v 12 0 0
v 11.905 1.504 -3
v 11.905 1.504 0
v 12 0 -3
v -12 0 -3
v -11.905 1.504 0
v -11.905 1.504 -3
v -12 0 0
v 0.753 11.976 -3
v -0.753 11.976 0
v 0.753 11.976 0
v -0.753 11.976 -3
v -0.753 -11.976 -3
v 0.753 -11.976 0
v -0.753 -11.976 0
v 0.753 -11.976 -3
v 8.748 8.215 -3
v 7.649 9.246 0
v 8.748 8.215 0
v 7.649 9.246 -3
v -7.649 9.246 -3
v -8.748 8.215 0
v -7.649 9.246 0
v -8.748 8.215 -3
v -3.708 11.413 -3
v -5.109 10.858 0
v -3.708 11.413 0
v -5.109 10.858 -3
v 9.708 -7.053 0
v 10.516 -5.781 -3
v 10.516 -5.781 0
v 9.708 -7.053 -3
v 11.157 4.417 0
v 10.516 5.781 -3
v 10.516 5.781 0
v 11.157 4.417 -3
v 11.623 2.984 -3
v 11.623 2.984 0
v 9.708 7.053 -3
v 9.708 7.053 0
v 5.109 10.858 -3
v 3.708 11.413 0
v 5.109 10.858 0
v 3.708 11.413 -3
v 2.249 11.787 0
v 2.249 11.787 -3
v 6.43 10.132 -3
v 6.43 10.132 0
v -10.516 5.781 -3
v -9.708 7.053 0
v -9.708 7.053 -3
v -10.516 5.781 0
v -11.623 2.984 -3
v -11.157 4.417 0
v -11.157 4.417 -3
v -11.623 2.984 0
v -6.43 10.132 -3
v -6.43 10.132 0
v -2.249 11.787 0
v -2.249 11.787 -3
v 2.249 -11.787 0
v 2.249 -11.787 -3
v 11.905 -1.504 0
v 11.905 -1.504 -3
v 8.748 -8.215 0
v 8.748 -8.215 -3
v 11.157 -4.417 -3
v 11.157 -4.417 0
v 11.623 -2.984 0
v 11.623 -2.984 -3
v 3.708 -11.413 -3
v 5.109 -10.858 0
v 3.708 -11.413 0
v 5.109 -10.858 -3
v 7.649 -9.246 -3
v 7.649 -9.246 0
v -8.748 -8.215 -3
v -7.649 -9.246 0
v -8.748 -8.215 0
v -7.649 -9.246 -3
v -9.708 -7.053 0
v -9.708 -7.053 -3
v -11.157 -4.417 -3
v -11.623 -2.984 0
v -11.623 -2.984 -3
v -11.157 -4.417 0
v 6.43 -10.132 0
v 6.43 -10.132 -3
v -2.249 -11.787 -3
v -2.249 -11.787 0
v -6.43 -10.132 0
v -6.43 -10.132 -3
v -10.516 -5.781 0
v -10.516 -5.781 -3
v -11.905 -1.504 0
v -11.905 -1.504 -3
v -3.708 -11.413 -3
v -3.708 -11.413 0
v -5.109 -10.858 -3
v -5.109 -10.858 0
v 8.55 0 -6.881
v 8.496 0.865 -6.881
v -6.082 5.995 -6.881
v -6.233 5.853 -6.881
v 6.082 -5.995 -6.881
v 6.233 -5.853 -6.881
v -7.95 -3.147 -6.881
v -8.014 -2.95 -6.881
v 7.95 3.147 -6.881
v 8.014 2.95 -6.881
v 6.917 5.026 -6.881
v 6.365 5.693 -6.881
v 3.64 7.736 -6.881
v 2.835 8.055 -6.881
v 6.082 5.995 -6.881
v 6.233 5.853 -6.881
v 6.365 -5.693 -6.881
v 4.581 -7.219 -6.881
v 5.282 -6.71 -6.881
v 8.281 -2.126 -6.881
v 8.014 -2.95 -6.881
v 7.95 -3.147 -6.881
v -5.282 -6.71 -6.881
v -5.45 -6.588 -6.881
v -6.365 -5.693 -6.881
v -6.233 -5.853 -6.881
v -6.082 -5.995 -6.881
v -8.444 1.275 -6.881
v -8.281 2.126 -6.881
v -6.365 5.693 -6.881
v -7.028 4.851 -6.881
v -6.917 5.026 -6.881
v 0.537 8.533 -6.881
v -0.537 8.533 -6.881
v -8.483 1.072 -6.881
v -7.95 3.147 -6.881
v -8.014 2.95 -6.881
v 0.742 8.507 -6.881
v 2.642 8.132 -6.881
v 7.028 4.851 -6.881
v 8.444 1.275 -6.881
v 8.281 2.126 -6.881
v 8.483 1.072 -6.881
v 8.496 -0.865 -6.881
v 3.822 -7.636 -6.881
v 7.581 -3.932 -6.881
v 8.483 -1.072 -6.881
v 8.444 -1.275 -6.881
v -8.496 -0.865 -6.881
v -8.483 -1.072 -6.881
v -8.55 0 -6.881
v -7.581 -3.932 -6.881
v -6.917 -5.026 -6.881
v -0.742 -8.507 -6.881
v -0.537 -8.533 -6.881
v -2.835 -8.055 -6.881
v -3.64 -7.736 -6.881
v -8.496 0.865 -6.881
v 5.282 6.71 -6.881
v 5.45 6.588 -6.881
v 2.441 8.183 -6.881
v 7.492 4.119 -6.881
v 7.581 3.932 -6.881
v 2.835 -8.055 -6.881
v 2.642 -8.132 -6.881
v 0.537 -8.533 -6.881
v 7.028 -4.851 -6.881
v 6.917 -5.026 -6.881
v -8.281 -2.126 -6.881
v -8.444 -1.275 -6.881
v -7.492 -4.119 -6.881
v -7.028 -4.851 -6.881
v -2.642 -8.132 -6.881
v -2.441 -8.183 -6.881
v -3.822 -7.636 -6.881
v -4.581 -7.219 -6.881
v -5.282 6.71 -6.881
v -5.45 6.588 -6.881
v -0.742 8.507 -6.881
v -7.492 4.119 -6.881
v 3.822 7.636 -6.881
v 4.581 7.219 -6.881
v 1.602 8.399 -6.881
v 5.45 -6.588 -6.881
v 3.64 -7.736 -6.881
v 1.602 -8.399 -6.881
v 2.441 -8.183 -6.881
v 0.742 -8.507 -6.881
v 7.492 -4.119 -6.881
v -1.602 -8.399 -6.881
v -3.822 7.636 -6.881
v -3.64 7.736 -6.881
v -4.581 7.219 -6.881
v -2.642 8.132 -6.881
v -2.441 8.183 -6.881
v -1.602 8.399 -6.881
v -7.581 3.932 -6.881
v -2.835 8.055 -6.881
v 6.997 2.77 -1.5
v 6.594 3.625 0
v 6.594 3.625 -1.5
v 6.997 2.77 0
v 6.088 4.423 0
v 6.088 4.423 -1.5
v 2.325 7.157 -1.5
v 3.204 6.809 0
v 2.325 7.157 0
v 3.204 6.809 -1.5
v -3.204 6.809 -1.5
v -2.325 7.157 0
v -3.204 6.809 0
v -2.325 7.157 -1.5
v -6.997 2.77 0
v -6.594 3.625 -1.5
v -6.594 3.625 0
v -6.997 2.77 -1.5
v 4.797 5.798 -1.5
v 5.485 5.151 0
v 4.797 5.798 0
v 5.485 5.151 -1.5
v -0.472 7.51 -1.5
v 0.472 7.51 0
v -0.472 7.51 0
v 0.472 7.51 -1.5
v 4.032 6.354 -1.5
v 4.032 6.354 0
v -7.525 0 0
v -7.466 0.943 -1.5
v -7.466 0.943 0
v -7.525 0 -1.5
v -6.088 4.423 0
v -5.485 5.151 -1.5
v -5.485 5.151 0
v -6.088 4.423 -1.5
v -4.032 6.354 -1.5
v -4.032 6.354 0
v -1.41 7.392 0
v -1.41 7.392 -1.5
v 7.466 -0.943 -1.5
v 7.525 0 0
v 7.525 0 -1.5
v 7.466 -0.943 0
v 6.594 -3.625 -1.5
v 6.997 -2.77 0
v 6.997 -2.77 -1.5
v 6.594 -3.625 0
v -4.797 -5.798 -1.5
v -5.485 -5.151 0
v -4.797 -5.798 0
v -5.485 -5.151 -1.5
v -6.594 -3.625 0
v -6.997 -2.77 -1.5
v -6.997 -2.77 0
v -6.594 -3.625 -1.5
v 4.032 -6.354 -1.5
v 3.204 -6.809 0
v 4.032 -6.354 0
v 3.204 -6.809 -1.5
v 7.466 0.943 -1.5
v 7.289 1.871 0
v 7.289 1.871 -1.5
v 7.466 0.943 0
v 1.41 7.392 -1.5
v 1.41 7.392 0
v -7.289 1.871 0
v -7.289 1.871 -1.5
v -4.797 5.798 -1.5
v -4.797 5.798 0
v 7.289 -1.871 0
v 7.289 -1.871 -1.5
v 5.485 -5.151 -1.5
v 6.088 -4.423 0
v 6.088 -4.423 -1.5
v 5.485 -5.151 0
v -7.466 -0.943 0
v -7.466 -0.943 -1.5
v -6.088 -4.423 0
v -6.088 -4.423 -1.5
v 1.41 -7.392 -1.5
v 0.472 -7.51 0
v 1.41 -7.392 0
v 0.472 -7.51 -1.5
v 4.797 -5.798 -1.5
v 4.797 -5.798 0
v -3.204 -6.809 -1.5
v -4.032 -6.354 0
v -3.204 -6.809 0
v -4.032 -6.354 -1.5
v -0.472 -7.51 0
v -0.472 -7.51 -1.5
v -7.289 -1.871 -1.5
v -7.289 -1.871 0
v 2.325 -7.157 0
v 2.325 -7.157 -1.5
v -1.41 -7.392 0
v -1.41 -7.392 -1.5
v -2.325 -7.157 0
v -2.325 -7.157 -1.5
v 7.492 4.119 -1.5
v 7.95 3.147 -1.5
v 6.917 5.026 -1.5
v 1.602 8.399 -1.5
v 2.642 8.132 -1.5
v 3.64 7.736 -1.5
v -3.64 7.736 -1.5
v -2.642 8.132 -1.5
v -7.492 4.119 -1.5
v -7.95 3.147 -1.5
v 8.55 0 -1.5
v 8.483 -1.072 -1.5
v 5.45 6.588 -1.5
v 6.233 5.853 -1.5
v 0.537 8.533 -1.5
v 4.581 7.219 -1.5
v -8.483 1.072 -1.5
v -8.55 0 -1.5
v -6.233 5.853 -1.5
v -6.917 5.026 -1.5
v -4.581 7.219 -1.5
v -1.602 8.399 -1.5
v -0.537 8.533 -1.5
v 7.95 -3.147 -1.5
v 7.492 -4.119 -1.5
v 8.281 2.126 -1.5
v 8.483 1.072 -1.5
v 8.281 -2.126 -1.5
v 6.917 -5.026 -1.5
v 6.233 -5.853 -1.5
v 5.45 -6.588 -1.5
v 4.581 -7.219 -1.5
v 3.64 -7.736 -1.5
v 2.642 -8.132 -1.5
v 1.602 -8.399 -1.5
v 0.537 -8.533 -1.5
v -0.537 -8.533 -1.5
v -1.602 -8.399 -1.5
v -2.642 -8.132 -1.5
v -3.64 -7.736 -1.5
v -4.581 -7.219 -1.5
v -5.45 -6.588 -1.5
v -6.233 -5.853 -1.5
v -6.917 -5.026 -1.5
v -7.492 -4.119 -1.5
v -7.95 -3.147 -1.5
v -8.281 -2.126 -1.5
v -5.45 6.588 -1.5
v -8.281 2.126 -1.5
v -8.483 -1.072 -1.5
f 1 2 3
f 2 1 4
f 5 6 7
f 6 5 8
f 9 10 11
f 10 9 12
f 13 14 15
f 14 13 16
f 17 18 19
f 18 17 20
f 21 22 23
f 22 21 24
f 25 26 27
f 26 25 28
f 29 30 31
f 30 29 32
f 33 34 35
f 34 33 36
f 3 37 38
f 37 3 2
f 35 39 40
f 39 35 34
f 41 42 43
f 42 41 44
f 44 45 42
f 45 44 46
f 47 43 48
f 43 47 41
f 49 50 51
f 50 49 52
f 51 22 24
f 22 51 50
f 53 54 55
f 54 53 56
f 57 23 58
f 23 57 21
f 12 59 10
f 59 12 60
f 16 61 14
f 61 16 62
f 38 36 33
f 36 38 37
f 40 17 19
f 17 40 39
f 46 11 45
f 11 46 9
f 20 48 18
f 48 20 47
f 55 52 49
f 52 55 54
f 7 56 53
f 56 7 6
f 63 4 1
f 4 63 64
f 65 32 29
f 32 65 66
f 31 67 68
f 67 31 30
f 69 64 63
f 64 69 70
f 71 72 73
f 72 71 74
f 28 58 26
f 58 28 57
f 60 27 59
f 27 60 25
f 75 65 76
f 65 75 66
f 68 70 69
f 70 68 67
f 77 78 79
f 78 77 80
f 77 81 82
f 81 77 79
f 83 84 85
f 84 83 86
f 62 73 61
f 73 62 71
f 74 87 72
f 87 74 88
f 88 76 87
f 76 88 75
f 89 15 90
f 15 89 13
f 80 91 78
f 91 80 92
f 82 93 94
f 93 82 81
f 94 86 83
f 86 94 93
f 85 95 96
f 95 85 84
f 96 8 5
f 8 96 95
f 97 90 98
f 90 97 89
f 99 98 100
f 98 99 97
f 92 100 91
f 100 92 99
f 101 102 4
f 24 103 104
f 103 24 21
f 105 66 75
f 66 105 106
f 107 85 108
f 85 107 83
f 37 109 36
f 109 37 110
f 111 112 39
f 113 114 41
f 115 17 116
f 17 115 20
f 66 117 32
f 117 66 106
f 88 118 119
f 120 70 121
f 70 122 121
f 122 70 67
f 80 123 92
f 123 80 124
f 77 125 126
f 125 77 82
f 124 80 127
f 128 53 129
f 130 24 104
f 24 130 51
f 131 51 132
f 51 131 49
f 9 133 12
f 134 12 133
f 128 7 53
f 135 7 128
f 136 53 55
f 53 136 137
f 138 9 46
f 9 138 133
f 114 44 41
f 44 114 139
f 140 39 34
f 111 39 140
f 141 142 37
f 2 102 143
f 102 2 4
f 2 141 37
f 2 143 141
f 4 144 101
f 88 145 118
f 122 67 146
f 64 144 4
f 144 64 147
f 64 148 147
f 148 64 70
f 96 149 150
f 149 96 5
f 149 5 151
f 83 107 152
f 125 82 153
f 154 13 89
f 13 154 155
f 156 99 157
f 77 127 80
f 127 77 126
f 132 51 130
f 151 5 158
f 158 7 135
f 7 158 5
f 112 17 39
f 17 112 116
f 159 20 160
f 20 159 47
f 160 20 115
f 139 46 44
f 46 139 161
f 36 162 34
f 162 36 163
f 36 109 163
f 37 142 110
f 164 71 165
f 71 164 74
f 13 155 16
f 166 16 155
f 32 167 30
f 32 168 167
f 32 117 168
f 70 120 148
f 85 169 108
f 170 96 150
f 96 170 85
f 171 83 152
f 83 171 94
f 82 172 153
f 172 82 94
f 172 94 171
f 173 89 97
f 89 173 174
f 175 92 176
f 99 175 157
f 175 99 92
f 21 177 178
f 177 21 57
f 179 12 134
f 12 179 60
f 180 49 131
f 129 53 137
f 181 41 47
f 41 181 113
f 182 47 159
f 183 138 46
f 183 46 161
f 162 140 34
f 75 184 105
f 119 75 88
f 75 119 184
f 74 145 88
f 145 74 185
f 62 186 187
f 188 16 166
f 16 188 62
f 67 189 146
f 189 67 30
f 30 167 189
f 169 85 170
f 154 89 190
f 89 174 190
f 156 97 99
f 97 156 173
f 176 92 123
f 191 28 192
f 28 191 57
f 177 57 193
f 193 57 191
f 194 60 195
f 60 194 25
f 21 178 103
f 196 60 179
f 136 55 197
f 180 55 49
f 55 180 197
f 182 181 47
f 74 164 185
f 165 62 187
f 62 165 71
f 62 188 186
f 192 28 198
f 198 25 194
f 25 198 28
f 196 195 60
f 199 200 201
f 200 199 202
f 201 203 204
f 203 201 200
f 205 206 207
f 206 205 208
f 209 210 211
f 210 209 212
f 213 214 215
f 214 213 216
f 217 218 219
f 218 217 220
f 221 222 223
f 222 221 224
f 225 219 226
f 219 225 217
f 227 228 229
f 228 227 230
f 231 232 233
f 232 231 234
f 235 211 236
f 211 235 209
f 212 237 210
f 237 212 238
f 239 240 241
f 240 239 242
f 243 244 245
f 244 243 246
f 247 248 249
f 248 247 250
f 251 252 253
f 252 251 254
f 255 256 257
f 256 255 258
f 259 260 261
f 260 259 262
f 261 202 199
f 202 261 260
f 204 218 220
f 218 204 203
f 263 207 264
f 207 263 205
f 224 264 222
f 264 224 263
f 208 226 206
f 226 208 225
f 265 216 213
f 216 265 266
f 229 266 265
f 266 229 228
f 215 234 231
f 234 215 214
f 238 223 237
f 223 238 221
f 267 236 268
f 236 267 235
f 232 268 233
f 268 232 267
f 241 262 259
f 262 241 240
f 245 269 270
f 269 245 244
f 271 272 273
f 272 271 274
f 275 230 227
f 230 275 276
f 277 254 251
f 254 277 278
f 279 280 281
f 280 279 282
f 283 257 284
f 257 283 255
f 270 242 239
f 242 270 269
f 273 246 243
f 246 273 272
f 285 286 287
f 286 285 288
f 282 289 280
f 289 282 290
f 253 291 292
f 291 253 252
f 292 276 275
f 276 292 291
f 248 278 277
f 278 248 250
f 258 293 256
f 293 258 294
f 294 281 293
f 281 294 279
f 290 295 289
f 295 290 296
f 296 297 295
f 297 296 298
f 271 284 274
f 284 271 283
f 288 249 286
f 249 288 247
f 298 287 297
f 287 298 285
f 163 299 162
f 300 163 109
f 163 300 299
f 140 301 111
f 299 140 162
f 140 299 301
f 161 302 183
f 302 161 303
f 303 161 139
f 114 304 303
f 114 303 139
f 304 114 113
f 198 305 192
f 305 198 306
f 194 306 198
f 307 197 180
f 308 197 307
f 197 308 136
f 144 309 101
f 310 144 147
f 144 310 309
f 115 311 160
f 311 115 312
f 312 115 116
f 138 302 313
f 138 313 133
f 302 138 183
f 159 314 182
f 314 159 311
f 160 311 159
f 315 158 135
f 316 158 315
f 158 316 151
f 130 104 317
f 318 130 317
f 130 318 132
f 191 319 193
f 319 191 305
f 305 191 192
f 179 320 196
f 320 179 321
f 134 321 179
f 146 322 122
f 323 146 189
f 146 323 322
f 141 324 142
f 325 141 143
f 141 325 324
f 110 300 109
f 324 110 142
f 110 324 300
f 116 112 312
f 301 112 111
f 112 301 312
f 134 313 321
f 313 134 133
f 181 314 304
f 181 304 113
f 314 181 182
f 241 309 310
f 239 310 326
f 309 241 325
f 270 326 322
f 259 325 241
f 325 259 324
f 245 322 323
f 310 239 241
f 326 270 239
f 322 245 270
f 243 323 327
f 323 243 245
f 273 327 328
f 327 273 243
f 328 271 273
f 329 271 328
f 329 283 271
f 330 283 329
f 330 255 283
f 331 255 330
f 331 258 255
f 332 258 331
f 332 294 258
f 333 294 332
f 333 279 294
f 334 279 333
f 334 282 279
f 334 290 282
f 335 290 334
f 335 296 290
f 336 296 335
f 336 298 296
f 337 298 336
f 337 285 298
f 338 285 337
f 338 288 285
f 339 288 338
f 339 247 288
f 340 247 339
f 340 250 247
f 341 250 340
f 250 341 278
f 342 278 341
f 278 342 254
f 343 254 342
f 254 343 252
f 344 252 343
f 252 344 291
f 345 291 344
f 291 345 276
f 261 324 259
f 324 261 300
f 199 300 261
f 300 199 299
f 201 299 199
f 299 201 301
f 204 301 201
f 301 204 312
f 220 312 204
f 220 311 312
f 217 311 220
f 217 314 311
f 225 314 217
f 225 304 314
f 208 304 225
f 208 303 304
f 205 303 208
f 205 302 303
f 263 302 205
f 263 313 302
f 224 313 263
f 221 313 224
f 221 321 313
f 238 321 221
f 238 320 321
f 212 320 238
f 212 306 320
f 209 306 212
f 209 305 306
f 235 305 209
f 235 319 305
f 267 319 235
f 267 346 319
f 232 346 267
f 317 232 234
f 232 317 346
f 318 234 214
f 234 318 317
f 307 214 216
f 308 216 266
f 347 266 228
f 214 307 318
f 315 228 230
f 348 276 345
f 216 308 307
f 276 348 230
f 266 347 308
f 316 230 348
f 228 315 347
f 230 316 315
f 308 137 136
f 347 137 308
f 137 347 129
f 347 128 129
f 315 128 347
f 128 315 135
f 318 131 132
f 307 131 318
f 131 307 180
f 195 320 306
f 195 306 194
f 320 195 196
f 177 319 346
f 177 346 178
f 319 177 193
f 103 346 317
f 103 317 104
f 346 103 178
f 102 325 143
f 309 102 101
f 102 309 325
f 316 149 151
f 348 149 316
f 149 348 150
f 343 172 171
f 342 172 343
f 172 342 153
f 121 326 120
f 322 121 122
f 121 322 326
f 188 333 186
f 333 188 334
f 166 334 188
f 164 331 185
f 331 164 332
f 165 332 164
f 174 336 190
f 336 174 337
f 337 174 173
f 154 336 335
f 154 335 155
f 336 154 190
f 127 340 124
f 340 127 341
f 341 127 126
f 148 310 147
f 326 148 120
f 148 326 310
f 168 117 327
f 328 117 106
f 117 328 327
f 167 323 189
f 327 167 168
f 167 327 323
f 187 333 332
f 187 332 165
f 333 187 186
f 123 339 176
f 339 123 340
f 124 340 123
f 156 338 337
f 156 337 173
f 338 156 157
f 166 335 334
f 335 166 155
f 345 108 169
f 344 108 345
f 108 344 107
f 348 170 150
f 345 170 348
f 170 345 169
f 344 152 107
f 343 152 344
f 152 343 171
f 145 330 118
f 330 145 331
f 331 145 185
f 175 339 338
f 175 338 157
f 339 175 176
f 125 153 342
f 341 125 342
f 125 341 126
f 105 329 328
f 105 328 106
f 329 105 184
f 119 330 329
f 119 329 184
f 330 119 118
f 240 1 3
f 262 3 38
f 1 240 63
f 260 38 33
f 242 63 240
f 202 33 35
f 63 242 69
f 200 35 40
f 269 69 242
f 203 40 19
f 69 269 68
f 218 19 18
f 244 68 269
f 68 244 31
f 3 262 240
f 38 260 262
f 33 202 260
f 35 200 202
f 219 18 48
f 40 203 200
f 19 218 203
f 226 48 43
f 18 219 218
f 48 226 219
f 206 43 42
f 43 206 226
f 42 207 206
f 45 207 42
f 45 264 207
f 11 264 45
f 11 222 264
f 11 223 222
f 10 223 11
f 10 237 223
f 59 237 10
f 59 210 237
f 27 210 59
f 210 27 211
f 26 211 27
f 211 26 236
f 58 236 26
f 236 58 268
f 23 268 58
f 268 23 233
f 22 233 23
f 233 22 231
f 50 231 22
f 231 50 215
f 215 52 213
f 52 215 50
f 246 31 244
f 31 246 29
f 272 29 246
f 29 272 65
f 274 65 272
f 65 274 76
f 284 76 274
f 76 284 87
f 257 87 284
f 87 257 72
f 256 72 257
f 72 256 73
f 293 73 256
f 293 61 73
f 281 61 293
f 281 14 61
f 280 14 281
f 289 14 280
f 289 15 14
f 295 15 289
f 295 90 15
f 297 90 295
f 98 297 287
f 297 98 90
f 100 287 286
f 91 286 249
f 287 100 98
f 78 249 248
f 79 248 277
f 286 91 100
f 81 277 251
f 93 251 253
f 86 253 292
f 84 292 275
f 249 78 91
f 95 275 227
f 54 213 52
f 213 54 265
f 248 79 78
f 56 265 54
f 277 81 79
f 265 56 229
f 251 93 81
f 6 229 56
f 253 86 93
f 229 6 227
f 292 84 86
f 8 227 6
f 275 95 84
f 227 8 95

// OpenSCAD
$fn = 50;


difference() {
	union() {
		*color(alpha = 1.0000000000, c = "gray") {
			translate(v = [0, 14, 0]) {
				linear_extrude(height = 1) {
					text(font = "Arial:style=Bold", halign = "center", size = 4.5000000000, text = "COMMENT description oobb_cylinder_shape_positive_type_6_depth_15_thickness_24_diameter_bearing_twenty_twenty_aluminium_extrusion_extra_606_bearing_true_both_holes_0_0_-7.5_pos_plate_12.0_radius", valign = "center");
				}
			}
		}
		translate(v = [0, 0, -3.0000000000]) {
			cylinder(h = 6, r = 12.0000000000);
		}
		*color(alpha = 1.0000000000, c = "gray") {
			translate(v = [0, 14, 5.2500000000]) {
				linear_extrude(height = 1) {
					text(font = "Arial:style=Bold", halign = "center", size = 4.5000000000, text = "COMMENT description oobb_cylinder_shape_positive_type_4.5_depth_0_0_5.25_pos_15_thickness_24_diameter_bearing_twenty_twenty_aluminium_extrusion_extra_606_bearing_true_both_holes_0_0_-7.5_pos_plate_12.0_r1_8.0_r2", valign = "center");
				}
			}
		}
		translate(v = [0, 0, 3.0000000000]) {
			cylinder(h = 4.5000000000, r1 = 12.0000000000, r2 = 8.0000000000);
		}
		*color(alpha = 1.0000000000, c = "gray") {
			translate(v = [0, 14, -5.2500000000]) {
				linear_extrude(height = 1) {
					text(font = "Arial:style=Bold", halign = "center", size = 4.5000000000, text = "COMMENT description oobb_cylinder_shape_positive_type_4.5_depth_0_0_-5.25_pos_15_thickness_24_diameter_bearing_twenty_twenty_aluminium_extrusion_extra_606_bearing_true_both_holes_0_0_-7.5_pos_plate_8.0_r1_12.0_r2", valign = "center");
				}
			}
		}
		translate(v = [0, 0, -7.5000000000]) {
			cylinder(h = 4.5000000000, r1 = 8.0000000000, r2 = 12.0000000000);
		}
	}
	union() {
		*color(alpha = 1.0000000000, c = "gray") {
			translate(v = [0, 14, 0]) {
				linear_extrude(height = 1) {
					text(font = "Arial:style=Bold", halign = "center", size = 4.5000000000, text = "COMMENT description oobb_hole_shape_negative_type_15_thickness_24_diameter_bearing_twenty_twenty_aluminium_extrusion_extra_606_bearing_true_both_holes_0_0_-7.5_pos_plate_5_radius", valign = "center");
				}
			}
		}
		translate(v = [0, 0, -50.0000000000]) {
			cylinder(h = 100, r = 5);
		}
		*color(alpha = 1.0000000000, c = "gray") {
			translate(v = [0, 14, 7.5000000000]) {
				linear_extrude(height = 1) {
					text(font = "Arial:style=Bold", halign = "center", size = 4.5000000000, text = "COMMENT description oobb_bearing_shape_negative_type_0_0_7.5_pos_15_thickness_24_diameter_bearing_twenty_twenty_aluminium_extrusion_extra_606_bearing_true_both_holes_0_0_-7.5_pos_plate_top_zz", valign = "center");
				}
			}
		}
		translate(v = [0, 0, 4.5000000000]) {
			translate(v = [0, 0, -3.0000000000]) {
				union() {
					difference() {
						cylinder(h = 6, r = 8.5500000000);
						cylinder(h = 6, r = 3.0000000000);
					}
					difference() {
						translate(v = [0, 0, -50]) {
							cylinder(h = 100, r = 7.5250000000);
						}
					}
				}
			}
		}
		*color(alpha = 1.0000000000, c = "gray") {
			translate(v = [0, 14, -7.5000000000]) {
				linear_extrude(height = 1) {
					text(font = "Arial:style=Bold", halign = "center", size = 4.5000000000, text = "COMMENT description oobb_bearing_shape_negative_type_0_0_-7.5_pos_15_thickness_24_diameter_bearing_twenty_twenty_aluminium_extrusion_extra_606_bearing_true_both_holes_0_0_-7.5_pos_plate_bottom_zz", valign = "center");
				}
			}
		}
		translate(v = [0, 0, -4.5000000000]) {
			translate(v = [0, 0, -3.0000000000]) {
				union() {
					difference() {
						cylinder(h = 6, r = 8.5500000000);
						cylinder(h = 6, r = 3.0000000000);
					}
					difference() {
						translate(v = [0, 0, -50]) {
							cylinder(h = 100, r = 7.5250000000);
						}
					}
				}
			}
		}
		*color(alpha = 1.0000000000, c = "gray") {
			translate(v = [0, 14, 0]) {
				linear_extrude(height = 1) {
					text(font = "Arial:style=Bold", halign = "center", size = 4.5000000000, text = "COMMENT description oobb_slice_shape_negative_type_15_thickness_24_diameter_bearing_twenty_twenty_aluminium_extrusion_extra_606_bearing_true_both_holes_0_0_-7.5_pos_plate", valign = "center");
				}
			}
		}
		translate(v = [-250, -250, 0]) {
			cube(size = [500, 500, 500]);
		}
		translate(v = [-250, -250, 0]) {
			cube(size = [500, 500, 500]);
		}
		translate(v = [-250, -250, 0]) {
			cube(size = [500, 500, 500]);
		}
	}
}
